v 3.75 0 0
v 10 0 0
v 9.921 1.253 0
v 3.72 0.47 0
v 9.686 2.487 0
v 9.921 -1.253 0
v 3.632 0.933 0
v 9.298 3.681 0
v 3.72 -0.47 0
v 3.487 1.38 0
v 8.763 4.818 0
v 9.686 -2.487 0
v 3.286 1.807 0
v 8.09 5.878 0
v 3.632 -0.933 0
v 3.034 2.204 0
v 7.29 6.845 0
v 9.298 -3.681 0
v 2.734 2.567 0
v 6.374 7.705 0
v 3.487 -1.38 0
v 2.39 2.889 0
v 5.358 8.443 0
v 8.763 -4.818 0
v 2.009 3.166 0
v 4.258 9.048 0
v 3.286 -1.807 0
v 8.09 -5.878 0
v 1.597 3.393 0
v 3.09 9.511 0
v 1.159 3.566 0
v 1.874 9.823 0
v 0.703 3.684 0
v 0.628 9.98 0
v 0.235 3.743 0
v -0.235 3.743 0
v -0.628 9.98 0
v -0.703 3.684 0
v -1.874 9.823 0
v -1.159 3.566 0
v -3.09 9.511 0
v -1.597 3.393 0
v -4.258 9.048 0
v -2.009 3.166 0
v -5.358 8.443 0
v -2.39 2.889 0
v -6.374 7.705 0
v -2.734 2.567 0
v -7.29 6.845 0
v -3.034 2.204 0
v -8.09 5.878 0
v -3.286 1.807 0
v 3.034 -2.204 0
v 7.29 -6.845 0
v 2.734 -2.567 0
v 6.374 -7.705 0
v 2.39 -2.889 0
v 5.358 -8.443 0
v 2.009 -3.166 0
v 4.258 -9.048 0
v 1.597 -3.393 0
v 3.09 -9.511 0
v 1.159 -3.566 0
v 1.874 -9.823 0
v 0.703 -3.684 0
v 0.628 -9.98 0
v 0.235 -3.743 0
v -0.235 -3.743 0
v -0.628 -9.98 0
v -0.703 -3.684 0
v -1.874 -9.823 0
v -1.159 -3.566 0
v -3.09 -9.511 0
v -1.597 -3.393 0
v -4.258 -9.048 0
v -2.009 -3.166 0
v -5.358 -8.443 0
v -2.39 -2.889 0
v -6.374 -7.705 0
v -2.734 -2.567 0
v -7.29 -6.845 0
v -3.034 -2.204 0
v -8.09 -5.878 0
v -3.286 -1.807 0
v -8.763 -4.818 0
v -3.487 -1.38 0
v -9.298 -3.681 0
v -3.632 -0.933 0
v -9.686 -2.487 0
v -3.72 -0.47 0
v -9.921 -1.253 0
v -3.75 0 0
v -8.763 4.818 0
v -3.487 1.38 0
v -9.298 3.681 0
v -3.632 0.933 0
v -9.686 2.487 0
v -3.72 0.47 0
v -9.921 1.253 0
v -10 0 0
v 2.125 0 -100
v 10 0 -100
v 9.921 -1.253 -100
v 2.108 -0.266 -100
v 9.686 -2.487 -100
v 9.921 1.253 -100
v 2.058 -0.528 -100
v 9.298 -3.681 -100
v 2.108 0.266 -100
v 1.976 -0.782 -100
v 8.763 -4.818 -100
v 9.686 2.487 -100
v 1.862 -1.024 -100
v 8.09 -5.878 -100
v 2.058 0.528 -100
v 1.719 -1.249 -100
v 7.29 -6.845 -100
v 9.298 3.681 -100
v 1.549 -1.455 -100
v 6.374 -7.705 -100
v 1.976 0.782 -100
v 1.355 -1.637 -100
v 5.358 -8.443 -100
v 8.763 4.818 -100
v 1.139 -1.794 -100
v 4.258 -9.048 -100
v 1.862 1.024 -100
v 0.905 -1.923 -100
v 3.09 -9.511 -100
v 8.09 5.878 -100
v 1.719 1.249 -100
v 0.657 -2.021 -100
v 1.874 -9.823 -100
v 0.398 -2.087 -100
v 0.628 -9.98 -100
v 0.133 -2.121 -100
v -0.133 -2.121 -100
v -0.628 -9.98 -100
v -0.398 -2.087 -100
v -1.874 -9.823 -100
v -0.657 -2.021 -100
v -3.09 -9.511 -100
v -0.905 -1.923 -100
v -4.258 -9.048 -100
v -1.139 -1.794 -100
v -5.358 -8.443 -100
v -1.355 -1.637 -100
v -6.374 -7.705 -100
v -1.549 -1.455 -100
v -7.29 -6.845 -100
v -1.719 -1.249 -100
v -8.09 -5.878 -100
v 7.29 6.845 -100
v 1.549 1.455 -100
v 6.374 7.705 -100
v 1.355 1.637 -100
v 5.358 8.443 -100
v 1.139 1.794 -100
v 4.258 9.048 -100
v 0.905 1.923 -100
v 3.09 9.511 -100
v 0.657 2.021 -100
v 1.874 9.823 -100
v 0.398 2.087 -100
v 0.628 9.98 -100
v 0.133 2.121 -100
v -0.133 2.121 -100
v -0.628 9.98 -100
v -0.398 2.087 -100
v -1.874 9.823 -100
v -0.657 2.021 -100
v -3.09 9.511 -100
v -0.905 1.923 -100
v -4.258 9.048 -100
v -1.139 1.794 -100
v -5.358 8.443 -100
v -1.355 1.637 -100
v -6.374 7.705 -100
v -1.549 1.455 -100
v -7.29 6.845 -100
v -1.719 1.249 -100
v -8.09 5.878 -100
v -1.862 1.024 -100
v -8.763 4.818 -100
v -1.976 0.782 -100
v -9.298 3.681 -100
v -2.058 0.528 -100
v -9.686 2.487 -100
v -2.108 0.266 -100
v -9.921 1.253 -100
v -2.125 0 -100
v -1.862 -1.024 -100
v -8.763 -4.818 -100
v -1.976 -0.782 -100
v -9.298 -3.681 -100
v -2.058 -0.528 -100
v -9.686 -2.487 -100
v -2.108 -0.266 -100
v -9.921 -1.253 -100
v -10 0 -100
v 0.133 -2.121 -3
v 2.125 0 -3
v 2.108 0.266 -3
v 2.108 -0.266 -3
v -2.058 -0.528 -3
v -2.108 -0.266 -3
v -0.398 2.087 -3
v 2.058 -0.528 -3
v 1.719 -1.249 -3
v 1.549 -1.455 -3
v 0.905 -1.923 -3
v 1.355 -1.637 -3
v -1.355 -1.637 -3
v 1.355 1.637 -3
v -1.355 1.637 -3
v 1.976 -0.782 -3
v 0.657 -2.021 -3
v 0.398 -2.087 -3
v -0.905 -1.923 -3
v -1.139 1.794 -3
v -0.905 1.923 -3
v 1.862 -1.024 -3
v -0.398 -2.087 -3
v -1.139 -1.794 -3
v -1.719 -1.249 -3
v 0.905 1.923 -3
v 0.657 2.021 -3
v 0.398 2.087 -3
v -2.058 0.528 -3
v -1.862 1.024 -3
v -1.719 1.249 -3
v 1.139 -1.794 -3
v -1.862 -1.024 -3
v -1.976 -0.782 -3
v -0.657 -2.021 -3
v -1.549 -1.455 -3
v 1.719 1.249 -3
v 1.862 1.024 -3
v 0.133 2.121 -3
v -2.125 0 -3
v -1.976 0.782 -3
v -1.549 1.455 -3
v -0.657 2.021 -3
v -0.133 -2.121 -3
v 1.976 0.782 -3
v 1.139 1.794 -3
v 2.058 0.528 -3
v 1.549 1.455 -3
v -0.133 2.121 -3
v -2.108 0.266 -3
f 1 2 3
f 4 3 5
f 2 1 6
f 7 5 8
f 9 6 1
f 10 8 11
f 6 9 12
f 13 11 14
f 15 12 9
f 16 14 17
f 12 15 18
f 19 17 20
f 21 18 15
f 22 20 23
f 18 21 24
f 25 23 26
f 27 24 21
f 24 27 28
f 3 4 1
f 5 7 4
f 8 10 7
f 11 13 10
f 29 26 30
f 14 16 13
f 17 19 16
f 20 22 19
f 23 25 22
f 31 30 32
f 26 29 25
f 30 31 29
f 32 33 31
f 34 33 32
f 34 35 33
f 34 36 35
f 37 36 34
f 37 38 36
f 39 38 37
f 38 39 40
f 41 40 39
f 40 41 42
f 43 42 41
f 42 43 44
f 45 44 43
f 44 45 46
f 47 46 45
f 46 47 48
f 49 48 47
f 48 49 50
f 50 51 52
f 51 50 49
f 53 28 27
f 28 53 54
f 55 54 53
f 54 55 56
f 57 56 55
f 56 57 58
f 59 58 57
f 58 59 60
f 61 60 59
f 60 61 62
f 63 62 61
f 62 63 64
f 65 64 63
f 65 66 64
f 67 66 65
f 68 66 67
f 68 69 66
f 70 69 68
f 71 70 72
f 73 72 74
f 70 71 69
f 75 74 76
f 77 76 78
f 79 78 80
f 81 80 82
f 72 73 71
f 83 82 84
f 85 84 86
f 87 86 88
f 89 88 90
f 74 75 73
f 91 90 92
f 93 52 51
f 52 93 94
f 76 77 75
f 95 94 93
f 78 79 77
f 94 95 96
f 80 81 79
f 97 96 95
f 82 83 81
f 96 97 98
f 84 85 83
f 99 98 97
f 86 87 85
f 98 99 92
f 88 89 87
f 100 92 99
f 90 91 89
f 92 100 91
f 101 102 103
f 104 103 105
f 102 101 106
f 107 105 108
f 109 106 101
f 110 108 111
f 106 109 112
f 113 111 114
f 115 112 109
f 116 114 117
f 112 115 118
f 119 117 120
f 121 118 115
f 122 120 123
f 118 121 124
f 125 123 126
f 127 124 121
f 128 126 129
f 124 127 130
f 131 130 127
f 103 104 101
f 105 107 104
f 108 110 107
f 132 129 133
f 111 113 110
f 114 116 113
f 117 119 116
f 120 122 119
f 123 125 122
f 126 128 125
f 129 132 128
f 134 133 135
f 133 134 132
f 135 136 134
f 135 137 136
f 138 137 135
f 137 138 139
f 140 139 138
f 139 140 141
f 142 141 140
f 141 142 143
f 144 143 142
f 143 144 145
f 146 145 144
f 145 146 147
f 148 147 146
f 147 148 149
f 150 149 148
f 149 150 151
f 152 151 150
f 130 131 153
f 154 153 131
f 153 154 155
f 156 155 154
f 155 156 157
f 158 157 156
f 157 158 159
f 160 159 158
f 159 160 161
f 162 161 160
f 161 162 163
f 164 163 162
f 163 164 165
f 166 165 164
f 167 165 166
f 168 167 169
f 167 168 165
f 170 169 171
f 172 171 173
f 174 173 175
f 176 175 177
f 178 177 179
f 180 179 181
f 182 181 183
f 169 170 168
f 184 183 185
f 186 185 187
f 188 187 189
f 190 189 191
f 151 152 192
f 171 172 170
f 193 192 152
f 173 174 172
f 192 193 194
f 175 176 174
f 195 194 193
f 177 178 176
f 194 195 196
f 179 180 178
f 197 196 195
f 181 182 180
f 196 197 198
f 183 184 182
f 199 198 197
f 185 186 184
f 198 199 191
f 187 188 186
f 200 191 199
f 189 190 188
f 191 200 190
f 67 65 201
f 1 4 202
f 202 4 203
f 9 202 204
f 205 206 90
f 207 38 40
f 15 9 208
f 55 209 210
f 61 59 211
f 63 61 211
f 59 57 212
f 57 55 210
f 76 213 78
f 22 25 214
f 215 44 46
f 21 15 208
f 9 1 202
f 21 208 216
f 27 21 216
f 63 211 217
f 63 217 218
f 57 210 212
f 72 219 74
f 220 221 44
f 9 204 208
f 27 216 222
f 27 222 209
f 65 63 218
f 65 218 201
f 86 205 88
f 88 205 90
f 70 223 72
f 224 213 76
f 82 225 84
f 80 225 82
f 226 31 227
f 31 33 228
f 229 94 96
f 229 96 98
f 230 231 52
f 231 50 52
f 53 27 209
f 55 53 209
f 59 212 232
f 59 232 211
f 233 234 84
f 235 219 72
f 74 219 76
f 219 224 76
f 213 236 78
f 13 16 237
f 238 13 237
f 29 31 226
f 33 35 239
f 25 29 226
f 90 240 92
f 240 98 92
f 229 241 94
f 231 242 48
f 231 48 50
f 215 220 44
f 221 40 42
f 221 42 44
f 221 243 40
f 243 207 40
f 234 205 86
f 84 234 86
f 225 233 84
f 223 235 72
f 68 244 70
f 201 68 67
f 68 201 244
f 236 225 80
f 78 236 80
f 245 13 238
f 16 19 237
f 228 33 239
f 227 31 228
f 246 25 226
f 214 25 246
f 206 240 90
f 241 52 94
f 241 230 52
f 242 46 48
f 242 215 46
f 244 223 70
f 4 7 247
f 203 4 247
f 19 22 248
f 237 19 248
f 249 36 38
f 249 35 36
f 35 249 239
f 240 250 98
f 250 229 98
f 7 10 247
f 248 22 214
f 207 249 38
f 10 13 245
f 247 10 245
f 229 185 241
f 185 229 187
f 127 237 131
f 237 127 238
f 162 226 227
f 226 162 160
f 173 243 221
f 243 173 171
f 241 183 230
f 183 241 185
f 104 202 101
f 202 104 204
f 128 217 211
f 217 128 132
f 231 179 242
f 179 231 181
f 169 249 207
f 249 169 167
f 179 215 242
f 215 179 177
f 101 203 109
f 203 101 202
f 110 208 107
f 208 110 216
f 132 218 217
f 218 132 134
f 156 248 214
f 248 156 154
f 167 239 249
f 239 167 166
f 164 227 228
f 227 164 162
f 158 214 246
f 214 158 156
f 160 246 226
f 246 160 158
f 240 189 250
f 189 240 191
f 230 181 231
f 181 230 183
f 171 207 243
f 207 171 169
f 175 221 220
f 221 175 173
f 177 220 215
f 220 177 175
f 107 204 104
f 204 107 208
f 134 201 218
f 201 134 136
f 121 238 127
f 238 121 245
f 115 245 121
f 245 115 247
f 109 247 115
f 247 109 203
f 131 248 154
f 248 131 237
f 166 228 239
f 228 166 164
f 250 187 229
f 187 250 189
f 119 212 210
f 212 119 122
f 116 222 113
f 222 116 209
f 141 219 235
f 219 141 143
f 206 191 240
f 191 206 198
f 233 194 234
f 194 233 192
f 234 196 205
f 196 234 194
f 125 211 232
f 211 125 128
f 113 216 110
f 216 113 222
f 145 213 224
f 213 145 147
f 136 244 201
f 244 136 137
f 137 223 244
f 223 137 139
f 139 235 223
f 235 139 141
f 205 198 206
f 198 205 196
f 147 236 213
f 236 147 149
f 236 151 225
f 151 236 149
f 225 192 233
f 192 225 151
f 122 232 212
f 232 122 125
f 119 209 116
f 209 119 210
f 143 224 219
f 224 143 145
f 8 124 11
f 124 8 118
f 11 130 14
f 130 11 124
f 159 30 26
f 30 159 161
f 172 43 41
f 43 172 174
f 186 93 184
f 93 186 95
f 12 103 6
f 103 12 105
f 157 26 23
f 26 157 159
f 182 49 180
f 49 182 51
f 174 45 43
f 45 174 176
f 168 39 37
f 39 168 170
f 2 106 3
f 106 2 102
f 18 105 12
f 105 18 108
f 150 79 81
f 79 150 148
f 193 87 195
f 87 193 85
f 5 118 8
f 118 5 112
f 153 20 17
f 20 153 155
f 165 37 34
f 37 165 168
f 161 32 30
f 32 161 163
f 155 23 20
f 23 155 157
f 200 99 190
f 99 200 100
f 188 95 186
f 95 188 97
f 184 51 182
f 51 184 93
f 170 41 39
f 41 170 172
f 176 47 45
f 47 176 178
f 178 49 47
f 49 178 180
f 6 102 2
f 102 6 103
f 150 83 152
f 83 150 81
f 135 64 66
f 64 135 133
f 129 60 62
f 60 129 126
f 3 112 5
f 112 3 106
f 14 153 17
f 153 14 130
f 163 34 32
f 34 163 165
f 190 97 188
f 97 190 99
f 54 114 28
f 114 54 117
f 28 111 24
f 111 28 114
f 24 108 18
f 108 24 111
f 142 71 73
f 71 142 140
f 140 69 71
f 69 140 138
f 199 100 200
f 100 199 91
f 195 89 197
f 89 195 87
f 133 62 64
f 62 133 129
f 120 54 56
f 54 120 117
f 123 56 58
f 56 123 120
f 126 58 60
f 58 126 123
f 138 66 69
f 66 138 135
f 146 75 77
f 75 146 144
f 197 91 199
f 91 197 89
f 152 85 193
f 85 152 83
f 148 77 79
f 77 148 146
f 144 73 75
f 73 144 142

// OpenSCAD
$fn = 50;


difference() {
	union() {
		translate(v = [0, 0, -100.0000000000]) {
			cylinder(h = 100, r = 10.0000000000);
		}
		cylinder(h = 0, r = 13.0000000000);
	}
	union() {
		translate(v = [0, 0, 0]) {
			rotate(a = [0, 0, 0]) {
				difference() {
					union() {
						#translate(v = [0, 0, -100.0000000000]) {
							cylinder(h = 100, r = 2.0000000000);
						}
						#translate(v = [0, 0, -3]) {
							cylinder(h = 3, r1 = 2.1250000000, r2 = 3.7500000000);
						}
						#translate(v = [0, 0, -100.0000000000]) {
							cylinder(h = 100, r = 2.1250000000);
						}
						#translate(v = [0, 0, -100.0000000000]) {
							cylinder(h = 100, r = 2.0000000000);
						}
					}
					union();
				}
			}
		}
	}
}
